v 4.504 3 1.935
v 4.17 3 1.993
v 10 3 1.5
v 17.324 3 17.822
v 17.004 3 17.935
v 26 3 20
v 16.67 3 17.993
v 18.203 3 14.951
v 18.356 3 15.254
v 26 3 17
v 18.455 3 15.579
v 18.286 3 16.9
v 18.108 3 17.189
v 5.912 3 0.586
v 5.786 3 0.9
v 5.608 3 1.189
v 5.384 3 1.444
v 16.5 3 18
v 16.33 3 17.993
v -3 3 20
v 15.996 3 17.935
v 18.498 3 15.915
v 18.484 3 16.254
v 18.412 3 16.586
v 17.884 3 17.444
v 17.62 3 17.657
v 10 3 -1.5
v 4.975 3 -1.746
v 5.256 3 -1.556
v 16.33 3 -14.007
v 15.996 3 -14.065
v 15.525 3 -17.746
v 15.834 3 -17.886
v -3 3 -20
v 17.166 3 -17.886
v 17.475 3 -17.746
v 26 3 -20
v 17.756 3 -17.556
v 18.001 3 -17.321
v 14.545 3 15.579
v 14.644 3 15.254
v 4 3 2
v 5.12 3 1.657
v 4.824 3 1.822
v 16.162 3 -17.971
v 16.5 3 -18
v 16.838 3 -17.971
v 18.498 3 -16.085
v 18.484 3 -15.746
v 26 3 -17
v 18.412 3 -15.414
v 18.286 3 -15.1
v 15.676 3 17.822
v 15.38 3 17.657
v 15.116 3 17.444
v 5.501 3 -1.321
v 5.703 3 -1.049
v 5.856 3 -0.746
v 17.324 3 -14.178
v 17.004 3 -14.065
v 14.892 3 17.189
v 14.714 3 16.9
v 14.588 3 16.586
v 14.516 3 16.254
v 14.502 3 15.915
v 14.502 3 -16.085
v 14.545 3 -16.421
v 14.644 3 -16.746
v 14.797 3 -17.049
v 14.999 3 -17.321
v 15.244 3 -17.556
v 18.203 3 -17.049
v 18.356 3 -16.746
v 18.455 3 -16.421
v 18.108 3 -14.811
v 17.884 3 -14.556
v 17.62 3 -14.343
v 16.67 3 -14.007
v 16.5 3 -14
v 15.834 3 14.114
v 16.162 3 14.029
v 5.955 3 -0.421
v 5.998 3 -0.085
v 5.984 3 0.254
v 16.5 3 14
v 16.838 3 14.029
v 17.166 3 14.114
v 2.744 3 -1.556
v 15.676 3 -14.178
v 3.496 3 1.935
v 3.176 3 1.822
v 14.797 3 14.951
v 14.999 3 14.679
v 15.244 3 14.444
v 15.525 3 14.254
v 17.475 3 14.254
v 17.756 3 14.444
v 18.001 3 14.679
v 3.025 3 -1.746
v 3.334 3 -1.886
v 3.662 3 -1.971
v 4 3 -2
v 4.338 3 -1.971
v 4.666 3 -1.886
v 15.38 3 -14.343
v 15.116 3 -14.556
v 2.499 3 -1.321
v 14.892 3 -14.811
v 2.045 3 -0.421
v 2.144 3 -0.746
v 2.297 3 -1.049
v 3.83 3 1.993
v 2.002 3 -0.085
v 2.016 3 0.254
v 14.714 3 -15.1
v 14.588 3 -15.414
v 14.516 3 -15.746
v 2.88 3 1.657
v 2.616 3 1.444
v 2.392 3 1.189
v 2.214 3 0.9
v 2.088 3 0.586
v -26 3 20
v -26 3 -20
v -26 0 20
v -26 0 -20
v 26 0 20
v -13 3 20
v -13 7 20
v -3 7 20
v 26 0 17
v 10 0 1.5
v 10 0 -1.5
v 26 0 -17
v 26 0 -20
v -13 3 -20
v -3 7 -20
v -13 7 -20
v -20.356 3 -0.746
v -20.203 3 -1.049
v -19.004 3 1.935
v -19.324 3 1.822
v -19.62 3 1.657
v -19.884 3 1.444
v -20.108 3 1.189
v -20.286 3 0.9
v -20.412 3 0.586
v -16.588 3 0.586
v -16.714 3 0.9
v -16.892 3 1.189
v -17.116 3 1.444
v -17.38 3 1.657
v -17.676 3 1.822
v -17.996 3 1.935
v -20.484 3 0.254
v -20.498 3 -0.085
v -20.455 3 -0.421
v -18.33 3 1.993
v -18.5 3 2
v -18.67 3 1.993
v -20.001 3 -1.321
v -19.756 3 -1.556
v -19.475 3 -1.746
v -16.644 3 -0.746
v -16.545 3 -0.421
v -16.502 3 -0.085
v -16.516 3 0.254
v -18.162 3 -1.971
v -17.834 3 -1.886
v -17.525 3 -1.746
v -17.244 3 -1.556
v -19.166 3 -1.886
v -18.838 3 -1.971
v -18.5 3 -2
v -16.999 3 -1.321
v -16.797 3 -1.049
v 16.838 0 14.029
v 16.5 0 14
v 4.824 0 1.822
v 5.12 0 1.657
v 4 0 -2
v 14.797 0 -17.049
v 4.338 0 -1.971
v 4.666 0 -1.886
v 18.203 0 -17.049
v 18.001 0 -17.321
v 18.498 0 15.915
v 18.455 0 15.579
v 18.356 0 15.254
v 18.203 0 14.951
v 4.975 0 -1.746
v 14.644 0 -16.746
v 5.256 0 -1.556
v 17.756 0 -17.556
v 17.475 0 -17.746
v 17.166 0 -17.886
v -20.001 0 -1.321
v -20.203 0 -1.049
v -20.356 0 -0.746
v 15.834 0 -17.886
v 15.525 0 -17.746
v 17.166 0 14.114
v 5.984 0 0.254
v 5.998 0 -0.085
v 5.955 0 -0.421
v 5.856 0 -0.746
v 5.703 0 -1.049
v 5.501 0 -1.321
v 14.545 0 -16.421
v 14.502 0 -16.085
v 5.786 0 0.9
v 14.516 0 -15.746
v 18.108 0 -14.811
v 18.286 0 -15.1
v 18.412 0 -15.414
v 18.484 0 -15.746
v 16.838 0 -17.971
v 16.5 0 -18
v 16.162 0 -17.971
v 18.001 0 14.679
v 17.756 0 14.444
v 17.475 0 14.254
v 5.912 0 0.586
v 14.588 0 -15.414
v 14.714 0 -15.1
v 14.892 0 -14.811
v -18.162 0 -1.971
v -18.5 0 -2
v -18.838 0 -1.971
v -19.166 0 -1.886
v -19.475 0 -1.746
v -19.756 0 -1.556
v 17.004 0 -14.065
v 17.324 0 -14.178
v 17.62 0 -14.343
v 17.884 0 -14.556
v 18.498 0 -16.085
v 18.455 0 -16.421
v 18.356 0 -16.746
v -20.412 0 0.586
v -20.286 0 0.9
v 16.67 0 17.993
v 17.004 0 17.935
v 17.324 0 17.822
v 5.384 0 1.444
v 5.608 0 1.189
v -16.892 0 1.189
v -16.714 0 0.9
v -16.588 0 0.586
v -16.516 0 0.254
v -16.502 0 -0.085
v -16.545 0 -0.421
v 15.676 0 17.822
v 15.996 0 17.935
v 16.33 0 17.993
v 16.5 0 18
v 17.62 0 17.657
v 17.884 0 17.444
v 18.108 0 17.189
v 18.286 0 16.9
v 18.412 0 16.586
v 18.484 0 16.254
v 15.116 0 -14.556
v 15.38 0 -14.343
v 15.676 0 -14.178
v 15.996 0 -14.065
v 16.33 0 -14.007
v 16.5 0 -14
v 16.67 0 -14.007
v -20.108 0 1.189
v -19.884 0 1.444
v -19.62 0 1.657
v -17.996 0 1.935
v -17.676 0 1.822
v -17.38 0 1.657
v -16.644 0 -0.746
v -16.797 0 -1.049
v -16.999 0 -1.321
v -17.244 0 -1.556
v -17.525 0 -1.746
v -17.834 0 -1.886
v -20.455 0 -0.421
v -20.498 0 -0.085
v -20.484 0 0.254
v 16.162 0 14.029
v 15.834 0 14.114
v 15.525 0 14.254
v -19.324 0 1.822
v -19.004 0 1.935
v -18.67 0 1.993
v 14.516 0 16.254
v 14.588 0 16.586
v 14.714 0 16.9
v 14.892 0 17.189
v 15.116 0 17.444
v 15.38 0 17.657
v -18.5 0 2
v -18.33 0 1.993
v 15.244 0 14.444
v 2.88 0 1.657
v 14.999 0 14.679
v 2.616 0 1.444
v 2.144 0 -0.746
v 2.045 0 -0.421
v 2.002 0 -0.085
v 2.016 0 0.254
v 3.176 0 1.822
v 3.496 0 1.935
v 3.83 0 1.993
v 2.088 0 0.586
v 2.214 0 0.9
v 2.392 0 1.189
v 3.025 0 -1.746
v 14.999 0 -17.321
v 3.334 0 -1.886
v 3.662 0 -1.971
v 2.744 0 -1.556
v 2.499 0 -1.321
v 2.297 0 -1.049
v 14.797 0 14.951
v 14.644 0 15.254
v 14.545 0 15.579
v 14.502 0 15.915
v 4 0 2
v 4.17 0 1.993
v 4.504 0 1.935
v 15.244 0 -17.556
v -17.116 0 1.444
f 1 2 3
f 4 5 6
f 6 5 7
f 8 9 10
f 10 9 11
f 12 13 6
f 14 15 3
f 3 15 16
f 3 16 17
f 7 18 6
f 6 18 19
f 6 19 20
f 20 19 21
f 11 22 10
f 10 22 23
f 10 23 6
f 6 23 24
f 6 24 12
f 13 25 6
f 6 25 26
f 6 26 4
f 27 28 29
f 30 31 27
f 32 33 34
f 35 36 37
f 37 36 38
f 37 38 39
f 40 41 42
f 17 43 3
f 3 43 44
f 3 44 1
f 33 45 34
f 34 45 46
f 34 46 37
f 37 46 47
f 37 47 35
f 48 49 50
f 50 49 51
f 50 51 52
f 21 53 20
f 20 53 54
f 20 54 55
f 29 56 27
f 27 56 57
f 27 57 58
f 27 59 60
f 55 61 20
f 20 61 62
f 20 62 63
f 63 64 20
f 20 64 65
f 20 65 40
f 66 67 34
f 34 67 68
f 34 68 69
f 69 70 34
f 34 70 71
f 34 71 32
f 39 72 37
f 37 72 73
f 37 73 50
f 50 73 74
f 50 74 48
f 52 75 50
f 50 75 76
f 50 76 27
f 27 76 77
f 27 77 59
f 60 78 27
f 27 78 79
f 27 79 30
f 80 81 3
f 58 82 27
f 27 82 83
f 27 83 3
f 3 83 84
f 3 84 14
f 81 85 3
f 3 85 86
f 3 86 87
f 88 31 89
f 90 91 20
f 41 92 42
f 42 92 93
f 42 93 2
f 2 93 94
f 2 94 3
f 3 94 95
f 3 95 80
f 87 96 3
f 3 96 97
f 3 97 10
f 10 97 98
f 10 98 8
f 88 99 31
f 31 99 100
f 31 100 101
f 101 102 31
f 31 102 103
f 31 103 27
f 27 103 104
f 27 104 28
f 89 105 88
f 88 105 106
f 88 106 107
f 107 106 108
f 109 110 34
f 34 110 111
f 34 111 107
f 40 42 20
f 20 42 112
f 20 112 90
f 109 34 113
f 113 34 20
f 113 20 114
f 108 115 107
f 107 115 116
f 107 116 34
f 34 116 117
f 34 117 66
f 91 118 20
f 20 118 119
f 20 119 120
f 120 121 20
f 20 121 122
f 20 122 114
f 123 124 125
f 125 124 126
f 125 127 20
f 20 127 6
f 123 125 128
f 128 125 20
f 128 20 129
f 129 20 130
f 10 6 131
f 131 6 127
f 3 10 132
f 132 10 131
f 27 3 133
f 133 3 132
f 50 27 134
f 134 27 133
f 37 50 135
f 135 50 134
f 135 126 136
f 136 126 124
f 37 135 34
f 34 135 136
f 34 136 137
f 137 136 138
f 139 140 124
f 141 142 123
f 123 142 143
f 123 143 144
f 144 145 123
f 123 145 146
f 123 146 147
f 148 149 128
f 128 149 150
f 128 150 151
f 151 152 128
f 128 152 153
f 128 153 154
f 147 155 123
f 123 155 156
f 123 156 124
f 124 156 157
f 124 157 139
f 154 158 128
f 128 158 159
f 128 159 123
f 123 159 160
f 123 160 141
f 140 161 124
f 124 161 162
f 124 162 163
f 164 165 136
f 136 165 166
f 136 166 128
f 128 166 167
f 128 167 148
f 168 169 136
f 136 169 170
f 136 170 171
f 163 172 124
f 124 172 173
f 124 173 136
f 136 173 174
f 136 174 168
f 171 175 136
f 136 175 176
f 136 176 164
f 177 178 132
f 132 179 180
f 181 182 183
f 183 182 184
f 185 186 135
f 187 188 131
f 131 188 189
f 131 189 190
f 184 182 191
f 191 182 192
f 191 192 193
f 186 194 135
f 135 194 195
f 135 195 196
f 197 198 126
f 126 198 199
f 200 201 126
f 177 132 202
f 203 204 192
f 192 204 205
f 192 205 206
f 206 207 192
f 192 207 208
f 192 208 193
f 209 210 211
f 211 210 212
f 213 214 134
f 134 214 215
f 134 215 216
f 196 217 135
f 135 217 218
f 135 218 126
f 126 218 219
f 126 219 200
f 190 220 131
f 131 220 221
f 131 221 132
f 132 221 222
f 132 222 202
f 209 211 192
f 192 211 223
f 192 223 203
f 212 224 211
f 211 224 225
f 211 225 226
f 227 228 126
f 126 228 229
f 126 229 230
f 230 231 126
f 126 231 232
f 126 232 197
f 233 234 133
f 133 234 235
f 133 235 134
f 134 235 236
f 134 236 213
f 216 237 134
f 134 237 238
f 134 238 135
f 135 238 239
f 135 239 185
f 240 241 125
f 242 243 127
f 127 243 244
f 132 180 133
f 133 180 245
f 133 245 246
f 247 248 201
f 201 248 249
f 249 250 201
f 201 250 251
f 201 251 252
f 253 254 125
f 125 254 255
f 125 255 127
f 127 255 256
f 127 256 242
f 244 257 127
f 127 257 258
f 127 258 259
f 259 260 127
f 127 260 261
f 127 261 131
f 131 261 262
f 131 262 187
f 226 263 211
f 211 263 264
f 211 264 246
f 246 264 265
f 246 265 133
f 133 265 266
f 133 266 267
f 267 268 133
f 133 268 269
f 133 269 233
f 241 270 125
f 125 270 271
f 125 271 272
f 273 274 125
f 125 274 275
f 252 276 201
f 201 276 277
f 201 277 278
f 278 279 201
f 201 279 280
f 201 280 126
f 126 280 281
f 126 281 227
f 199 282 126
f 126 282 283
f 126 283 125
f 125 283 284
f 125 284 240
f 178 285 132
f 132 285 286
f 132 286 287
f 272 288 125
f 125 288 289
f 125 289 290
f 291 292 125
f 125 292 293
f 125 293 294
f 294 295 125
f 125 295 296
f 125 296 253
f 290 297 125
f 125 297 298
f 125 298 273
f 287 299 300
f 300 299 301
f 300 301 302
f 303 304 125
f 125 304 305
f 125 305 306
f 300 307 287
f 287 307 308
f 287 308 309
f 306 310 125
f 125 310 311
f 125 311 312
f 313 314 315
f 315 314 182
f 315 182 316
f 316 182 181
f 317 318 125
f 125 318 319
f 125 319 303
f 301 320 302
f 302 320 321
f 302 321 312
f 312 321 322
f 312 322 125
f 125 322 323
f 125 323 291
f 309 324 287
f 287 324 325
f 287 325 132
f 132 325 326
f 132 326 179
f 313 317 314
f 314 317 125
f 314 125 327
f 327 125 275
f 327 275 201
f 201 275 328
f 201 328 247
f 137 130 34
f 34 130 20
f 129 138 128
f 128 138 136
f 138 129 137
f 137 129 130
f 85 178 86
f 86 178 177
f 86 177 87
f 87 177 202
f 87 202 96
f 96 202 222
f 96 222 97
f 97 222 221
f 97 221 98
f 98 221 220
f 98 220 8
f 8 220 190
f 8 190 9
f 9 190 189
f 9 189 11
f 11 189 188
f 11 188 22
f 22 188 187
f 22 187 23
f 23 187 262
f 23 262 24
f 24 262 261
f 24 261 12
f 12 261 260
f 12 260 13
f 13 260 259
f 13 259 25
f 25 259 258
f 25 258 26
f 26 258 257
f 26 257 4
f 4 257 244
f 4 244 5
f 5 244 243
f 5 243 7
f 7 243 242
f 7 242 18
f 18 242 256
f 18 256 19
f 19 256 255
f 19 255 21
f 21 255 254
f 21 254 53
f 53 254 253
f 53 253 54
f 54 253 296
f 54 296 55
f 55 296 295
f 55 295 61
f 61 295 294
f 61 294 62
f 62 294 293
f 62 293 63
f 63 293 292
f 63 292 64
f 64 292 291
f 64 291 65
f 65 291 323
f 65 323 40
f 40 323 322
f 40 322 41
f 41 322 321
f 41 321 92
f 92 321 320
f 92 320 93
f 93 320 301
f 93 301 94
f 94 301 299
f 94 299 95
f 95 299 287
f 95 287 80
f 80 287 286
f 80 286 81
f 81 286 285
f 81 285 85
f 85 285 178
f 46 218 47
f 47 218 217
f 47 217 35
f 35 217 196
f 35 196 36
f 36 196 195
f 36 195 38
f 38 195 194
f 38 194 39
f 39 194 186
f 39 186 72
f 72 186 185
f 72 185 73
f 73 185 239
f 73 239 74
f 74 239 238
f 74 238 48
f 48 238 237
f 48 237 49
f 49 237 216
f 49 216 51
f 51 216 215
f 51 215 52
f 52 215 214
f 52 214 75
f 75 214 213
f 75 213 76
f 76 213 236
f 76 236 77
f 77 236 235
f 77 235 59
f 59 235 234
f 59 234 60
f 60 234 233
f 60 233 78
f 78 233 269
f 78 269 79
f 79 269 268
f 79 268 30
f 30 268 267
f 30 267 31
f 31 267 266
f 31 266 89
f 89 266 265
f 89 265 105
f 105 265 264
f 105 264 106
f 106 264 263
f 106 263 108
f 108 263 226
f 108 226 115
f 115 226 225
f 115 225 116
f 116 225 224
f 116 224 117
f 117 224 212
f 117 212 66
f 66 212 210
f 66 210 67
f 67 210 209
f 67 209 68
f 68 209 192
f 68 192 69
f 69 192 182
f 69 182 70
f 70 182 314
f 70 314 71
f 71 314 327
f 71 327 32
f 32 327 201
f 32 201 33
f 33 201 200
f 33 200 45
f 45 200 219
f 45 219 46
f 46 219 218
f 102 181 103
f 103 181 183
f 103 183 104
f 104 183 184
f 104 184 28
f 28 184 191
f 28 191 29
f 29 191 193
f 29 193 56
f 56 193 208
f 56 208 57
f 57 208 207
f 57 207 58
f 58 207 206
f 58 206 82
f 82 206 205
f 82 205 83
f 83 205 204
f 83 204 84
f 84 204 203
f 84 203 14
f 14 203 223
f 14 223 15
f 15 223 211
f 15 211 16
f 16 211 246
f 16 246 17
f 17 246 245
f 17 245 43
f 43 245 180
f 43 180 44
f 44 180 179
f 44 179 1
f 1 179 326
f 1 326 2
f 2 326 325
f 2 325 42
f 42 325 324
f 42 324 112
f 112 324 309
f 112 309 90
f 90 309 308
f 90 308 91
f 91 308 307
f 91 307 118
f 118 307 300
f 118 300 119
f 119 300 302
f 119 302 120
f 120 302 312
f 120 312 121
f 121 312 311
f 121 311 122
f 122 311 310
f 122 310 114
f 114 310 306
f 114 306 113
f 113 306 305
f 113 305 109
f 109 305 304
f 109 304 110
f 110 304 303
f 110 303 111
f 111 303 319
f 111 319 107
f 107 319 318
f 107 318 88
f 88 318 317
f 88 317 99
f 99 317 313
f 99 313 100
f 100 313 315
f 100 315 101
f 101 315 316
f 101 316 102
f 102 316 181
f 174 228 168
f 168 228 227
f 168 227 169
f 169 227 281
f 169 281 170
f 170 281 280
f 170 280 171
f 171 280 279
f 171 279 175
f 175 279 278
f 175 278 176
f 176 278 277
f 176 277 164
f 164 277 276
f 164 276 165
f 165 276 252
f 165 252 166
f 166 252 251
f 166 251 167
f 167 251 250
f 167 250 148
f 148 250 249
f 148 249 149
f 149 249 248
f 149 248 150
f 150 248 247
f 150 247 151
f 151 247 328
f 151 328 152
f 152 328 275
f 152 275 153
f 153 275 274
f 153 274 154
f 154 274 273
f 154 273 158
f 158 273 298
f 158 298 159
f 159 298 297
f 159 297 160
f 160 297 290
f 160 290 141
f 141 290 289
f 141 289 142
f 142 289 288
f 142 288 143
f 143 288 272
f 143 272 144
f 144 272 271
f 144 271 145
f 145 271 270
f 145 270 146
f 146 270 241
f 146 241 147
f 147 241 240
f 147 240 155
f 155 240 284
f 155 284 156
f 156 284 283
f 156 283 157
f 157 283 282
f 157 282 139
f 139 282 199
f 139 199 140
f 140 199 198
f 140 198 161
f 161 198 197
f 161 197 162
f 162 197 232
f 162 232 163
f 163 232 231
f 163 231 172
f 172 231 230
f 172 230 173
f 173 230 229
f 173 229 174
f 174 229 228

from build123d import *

# Parameters (mm, degrees)
BASE_DEPTH       = 3
BULDGESKETCH_W   = 10
BULDGESKETCH_H   = 40
BULDGE_DEPTH     = 4
HOLESSKETCH_R    = 2
HOLES_DEPTH      = 1
HOLES_DEPTH_BACK = 8


with BuildPart() as part:
    # BaseSketch → Base (new body)
    with BuildSketch(Plane(origin=(0, 0, 0), x_dir=(1, 0, 0), z_dir=(0, 1, 0))):
        Polygon((26, -20), (26, -17), (10, -1.5), (10, 1.5), (26, 17), (26, 20), (-26, 20), (-26, -20), align=None)
    extrude(amount=BASE_DEPTH)

    # BuldgeSketch → Buldge (add)
    with BuildSketch(Plane(origin=(0, 3, 0), x_dir=(1, 0, 0), z_dir=(0, 1, 0))):
        with Locations((-8, 0)):
            Rectangle(BULDGESKETCH_W, BULDGESKETCH_H)
    extrude(amount=BULDGE_DEPTH)

    # HolesSketch → Holes (cut, two sides)
    with BuildSketch(Plane.XZ) as holes_sk:
        with Locations((4, 0)):
            Circle(HOLESSKETCH_R)
        with Locations((16.5, -16)):
            Circle(HOLESSKETCH_R)
        with Locations((16.5, 16)):
            Circle(HOLESSKETCH_R)
        with Locations((-18.5, 0)):
            Circle(HOLESSKETCH_R)
    extrude(amount=HOLES_DEPTH, mode=Mode.SUBTRACT)
    extrude(holes_sk.sketch, amount=-HOLES_DEPTH_BACK, mode=Mode.SUBTRACT)


solid = part.part
